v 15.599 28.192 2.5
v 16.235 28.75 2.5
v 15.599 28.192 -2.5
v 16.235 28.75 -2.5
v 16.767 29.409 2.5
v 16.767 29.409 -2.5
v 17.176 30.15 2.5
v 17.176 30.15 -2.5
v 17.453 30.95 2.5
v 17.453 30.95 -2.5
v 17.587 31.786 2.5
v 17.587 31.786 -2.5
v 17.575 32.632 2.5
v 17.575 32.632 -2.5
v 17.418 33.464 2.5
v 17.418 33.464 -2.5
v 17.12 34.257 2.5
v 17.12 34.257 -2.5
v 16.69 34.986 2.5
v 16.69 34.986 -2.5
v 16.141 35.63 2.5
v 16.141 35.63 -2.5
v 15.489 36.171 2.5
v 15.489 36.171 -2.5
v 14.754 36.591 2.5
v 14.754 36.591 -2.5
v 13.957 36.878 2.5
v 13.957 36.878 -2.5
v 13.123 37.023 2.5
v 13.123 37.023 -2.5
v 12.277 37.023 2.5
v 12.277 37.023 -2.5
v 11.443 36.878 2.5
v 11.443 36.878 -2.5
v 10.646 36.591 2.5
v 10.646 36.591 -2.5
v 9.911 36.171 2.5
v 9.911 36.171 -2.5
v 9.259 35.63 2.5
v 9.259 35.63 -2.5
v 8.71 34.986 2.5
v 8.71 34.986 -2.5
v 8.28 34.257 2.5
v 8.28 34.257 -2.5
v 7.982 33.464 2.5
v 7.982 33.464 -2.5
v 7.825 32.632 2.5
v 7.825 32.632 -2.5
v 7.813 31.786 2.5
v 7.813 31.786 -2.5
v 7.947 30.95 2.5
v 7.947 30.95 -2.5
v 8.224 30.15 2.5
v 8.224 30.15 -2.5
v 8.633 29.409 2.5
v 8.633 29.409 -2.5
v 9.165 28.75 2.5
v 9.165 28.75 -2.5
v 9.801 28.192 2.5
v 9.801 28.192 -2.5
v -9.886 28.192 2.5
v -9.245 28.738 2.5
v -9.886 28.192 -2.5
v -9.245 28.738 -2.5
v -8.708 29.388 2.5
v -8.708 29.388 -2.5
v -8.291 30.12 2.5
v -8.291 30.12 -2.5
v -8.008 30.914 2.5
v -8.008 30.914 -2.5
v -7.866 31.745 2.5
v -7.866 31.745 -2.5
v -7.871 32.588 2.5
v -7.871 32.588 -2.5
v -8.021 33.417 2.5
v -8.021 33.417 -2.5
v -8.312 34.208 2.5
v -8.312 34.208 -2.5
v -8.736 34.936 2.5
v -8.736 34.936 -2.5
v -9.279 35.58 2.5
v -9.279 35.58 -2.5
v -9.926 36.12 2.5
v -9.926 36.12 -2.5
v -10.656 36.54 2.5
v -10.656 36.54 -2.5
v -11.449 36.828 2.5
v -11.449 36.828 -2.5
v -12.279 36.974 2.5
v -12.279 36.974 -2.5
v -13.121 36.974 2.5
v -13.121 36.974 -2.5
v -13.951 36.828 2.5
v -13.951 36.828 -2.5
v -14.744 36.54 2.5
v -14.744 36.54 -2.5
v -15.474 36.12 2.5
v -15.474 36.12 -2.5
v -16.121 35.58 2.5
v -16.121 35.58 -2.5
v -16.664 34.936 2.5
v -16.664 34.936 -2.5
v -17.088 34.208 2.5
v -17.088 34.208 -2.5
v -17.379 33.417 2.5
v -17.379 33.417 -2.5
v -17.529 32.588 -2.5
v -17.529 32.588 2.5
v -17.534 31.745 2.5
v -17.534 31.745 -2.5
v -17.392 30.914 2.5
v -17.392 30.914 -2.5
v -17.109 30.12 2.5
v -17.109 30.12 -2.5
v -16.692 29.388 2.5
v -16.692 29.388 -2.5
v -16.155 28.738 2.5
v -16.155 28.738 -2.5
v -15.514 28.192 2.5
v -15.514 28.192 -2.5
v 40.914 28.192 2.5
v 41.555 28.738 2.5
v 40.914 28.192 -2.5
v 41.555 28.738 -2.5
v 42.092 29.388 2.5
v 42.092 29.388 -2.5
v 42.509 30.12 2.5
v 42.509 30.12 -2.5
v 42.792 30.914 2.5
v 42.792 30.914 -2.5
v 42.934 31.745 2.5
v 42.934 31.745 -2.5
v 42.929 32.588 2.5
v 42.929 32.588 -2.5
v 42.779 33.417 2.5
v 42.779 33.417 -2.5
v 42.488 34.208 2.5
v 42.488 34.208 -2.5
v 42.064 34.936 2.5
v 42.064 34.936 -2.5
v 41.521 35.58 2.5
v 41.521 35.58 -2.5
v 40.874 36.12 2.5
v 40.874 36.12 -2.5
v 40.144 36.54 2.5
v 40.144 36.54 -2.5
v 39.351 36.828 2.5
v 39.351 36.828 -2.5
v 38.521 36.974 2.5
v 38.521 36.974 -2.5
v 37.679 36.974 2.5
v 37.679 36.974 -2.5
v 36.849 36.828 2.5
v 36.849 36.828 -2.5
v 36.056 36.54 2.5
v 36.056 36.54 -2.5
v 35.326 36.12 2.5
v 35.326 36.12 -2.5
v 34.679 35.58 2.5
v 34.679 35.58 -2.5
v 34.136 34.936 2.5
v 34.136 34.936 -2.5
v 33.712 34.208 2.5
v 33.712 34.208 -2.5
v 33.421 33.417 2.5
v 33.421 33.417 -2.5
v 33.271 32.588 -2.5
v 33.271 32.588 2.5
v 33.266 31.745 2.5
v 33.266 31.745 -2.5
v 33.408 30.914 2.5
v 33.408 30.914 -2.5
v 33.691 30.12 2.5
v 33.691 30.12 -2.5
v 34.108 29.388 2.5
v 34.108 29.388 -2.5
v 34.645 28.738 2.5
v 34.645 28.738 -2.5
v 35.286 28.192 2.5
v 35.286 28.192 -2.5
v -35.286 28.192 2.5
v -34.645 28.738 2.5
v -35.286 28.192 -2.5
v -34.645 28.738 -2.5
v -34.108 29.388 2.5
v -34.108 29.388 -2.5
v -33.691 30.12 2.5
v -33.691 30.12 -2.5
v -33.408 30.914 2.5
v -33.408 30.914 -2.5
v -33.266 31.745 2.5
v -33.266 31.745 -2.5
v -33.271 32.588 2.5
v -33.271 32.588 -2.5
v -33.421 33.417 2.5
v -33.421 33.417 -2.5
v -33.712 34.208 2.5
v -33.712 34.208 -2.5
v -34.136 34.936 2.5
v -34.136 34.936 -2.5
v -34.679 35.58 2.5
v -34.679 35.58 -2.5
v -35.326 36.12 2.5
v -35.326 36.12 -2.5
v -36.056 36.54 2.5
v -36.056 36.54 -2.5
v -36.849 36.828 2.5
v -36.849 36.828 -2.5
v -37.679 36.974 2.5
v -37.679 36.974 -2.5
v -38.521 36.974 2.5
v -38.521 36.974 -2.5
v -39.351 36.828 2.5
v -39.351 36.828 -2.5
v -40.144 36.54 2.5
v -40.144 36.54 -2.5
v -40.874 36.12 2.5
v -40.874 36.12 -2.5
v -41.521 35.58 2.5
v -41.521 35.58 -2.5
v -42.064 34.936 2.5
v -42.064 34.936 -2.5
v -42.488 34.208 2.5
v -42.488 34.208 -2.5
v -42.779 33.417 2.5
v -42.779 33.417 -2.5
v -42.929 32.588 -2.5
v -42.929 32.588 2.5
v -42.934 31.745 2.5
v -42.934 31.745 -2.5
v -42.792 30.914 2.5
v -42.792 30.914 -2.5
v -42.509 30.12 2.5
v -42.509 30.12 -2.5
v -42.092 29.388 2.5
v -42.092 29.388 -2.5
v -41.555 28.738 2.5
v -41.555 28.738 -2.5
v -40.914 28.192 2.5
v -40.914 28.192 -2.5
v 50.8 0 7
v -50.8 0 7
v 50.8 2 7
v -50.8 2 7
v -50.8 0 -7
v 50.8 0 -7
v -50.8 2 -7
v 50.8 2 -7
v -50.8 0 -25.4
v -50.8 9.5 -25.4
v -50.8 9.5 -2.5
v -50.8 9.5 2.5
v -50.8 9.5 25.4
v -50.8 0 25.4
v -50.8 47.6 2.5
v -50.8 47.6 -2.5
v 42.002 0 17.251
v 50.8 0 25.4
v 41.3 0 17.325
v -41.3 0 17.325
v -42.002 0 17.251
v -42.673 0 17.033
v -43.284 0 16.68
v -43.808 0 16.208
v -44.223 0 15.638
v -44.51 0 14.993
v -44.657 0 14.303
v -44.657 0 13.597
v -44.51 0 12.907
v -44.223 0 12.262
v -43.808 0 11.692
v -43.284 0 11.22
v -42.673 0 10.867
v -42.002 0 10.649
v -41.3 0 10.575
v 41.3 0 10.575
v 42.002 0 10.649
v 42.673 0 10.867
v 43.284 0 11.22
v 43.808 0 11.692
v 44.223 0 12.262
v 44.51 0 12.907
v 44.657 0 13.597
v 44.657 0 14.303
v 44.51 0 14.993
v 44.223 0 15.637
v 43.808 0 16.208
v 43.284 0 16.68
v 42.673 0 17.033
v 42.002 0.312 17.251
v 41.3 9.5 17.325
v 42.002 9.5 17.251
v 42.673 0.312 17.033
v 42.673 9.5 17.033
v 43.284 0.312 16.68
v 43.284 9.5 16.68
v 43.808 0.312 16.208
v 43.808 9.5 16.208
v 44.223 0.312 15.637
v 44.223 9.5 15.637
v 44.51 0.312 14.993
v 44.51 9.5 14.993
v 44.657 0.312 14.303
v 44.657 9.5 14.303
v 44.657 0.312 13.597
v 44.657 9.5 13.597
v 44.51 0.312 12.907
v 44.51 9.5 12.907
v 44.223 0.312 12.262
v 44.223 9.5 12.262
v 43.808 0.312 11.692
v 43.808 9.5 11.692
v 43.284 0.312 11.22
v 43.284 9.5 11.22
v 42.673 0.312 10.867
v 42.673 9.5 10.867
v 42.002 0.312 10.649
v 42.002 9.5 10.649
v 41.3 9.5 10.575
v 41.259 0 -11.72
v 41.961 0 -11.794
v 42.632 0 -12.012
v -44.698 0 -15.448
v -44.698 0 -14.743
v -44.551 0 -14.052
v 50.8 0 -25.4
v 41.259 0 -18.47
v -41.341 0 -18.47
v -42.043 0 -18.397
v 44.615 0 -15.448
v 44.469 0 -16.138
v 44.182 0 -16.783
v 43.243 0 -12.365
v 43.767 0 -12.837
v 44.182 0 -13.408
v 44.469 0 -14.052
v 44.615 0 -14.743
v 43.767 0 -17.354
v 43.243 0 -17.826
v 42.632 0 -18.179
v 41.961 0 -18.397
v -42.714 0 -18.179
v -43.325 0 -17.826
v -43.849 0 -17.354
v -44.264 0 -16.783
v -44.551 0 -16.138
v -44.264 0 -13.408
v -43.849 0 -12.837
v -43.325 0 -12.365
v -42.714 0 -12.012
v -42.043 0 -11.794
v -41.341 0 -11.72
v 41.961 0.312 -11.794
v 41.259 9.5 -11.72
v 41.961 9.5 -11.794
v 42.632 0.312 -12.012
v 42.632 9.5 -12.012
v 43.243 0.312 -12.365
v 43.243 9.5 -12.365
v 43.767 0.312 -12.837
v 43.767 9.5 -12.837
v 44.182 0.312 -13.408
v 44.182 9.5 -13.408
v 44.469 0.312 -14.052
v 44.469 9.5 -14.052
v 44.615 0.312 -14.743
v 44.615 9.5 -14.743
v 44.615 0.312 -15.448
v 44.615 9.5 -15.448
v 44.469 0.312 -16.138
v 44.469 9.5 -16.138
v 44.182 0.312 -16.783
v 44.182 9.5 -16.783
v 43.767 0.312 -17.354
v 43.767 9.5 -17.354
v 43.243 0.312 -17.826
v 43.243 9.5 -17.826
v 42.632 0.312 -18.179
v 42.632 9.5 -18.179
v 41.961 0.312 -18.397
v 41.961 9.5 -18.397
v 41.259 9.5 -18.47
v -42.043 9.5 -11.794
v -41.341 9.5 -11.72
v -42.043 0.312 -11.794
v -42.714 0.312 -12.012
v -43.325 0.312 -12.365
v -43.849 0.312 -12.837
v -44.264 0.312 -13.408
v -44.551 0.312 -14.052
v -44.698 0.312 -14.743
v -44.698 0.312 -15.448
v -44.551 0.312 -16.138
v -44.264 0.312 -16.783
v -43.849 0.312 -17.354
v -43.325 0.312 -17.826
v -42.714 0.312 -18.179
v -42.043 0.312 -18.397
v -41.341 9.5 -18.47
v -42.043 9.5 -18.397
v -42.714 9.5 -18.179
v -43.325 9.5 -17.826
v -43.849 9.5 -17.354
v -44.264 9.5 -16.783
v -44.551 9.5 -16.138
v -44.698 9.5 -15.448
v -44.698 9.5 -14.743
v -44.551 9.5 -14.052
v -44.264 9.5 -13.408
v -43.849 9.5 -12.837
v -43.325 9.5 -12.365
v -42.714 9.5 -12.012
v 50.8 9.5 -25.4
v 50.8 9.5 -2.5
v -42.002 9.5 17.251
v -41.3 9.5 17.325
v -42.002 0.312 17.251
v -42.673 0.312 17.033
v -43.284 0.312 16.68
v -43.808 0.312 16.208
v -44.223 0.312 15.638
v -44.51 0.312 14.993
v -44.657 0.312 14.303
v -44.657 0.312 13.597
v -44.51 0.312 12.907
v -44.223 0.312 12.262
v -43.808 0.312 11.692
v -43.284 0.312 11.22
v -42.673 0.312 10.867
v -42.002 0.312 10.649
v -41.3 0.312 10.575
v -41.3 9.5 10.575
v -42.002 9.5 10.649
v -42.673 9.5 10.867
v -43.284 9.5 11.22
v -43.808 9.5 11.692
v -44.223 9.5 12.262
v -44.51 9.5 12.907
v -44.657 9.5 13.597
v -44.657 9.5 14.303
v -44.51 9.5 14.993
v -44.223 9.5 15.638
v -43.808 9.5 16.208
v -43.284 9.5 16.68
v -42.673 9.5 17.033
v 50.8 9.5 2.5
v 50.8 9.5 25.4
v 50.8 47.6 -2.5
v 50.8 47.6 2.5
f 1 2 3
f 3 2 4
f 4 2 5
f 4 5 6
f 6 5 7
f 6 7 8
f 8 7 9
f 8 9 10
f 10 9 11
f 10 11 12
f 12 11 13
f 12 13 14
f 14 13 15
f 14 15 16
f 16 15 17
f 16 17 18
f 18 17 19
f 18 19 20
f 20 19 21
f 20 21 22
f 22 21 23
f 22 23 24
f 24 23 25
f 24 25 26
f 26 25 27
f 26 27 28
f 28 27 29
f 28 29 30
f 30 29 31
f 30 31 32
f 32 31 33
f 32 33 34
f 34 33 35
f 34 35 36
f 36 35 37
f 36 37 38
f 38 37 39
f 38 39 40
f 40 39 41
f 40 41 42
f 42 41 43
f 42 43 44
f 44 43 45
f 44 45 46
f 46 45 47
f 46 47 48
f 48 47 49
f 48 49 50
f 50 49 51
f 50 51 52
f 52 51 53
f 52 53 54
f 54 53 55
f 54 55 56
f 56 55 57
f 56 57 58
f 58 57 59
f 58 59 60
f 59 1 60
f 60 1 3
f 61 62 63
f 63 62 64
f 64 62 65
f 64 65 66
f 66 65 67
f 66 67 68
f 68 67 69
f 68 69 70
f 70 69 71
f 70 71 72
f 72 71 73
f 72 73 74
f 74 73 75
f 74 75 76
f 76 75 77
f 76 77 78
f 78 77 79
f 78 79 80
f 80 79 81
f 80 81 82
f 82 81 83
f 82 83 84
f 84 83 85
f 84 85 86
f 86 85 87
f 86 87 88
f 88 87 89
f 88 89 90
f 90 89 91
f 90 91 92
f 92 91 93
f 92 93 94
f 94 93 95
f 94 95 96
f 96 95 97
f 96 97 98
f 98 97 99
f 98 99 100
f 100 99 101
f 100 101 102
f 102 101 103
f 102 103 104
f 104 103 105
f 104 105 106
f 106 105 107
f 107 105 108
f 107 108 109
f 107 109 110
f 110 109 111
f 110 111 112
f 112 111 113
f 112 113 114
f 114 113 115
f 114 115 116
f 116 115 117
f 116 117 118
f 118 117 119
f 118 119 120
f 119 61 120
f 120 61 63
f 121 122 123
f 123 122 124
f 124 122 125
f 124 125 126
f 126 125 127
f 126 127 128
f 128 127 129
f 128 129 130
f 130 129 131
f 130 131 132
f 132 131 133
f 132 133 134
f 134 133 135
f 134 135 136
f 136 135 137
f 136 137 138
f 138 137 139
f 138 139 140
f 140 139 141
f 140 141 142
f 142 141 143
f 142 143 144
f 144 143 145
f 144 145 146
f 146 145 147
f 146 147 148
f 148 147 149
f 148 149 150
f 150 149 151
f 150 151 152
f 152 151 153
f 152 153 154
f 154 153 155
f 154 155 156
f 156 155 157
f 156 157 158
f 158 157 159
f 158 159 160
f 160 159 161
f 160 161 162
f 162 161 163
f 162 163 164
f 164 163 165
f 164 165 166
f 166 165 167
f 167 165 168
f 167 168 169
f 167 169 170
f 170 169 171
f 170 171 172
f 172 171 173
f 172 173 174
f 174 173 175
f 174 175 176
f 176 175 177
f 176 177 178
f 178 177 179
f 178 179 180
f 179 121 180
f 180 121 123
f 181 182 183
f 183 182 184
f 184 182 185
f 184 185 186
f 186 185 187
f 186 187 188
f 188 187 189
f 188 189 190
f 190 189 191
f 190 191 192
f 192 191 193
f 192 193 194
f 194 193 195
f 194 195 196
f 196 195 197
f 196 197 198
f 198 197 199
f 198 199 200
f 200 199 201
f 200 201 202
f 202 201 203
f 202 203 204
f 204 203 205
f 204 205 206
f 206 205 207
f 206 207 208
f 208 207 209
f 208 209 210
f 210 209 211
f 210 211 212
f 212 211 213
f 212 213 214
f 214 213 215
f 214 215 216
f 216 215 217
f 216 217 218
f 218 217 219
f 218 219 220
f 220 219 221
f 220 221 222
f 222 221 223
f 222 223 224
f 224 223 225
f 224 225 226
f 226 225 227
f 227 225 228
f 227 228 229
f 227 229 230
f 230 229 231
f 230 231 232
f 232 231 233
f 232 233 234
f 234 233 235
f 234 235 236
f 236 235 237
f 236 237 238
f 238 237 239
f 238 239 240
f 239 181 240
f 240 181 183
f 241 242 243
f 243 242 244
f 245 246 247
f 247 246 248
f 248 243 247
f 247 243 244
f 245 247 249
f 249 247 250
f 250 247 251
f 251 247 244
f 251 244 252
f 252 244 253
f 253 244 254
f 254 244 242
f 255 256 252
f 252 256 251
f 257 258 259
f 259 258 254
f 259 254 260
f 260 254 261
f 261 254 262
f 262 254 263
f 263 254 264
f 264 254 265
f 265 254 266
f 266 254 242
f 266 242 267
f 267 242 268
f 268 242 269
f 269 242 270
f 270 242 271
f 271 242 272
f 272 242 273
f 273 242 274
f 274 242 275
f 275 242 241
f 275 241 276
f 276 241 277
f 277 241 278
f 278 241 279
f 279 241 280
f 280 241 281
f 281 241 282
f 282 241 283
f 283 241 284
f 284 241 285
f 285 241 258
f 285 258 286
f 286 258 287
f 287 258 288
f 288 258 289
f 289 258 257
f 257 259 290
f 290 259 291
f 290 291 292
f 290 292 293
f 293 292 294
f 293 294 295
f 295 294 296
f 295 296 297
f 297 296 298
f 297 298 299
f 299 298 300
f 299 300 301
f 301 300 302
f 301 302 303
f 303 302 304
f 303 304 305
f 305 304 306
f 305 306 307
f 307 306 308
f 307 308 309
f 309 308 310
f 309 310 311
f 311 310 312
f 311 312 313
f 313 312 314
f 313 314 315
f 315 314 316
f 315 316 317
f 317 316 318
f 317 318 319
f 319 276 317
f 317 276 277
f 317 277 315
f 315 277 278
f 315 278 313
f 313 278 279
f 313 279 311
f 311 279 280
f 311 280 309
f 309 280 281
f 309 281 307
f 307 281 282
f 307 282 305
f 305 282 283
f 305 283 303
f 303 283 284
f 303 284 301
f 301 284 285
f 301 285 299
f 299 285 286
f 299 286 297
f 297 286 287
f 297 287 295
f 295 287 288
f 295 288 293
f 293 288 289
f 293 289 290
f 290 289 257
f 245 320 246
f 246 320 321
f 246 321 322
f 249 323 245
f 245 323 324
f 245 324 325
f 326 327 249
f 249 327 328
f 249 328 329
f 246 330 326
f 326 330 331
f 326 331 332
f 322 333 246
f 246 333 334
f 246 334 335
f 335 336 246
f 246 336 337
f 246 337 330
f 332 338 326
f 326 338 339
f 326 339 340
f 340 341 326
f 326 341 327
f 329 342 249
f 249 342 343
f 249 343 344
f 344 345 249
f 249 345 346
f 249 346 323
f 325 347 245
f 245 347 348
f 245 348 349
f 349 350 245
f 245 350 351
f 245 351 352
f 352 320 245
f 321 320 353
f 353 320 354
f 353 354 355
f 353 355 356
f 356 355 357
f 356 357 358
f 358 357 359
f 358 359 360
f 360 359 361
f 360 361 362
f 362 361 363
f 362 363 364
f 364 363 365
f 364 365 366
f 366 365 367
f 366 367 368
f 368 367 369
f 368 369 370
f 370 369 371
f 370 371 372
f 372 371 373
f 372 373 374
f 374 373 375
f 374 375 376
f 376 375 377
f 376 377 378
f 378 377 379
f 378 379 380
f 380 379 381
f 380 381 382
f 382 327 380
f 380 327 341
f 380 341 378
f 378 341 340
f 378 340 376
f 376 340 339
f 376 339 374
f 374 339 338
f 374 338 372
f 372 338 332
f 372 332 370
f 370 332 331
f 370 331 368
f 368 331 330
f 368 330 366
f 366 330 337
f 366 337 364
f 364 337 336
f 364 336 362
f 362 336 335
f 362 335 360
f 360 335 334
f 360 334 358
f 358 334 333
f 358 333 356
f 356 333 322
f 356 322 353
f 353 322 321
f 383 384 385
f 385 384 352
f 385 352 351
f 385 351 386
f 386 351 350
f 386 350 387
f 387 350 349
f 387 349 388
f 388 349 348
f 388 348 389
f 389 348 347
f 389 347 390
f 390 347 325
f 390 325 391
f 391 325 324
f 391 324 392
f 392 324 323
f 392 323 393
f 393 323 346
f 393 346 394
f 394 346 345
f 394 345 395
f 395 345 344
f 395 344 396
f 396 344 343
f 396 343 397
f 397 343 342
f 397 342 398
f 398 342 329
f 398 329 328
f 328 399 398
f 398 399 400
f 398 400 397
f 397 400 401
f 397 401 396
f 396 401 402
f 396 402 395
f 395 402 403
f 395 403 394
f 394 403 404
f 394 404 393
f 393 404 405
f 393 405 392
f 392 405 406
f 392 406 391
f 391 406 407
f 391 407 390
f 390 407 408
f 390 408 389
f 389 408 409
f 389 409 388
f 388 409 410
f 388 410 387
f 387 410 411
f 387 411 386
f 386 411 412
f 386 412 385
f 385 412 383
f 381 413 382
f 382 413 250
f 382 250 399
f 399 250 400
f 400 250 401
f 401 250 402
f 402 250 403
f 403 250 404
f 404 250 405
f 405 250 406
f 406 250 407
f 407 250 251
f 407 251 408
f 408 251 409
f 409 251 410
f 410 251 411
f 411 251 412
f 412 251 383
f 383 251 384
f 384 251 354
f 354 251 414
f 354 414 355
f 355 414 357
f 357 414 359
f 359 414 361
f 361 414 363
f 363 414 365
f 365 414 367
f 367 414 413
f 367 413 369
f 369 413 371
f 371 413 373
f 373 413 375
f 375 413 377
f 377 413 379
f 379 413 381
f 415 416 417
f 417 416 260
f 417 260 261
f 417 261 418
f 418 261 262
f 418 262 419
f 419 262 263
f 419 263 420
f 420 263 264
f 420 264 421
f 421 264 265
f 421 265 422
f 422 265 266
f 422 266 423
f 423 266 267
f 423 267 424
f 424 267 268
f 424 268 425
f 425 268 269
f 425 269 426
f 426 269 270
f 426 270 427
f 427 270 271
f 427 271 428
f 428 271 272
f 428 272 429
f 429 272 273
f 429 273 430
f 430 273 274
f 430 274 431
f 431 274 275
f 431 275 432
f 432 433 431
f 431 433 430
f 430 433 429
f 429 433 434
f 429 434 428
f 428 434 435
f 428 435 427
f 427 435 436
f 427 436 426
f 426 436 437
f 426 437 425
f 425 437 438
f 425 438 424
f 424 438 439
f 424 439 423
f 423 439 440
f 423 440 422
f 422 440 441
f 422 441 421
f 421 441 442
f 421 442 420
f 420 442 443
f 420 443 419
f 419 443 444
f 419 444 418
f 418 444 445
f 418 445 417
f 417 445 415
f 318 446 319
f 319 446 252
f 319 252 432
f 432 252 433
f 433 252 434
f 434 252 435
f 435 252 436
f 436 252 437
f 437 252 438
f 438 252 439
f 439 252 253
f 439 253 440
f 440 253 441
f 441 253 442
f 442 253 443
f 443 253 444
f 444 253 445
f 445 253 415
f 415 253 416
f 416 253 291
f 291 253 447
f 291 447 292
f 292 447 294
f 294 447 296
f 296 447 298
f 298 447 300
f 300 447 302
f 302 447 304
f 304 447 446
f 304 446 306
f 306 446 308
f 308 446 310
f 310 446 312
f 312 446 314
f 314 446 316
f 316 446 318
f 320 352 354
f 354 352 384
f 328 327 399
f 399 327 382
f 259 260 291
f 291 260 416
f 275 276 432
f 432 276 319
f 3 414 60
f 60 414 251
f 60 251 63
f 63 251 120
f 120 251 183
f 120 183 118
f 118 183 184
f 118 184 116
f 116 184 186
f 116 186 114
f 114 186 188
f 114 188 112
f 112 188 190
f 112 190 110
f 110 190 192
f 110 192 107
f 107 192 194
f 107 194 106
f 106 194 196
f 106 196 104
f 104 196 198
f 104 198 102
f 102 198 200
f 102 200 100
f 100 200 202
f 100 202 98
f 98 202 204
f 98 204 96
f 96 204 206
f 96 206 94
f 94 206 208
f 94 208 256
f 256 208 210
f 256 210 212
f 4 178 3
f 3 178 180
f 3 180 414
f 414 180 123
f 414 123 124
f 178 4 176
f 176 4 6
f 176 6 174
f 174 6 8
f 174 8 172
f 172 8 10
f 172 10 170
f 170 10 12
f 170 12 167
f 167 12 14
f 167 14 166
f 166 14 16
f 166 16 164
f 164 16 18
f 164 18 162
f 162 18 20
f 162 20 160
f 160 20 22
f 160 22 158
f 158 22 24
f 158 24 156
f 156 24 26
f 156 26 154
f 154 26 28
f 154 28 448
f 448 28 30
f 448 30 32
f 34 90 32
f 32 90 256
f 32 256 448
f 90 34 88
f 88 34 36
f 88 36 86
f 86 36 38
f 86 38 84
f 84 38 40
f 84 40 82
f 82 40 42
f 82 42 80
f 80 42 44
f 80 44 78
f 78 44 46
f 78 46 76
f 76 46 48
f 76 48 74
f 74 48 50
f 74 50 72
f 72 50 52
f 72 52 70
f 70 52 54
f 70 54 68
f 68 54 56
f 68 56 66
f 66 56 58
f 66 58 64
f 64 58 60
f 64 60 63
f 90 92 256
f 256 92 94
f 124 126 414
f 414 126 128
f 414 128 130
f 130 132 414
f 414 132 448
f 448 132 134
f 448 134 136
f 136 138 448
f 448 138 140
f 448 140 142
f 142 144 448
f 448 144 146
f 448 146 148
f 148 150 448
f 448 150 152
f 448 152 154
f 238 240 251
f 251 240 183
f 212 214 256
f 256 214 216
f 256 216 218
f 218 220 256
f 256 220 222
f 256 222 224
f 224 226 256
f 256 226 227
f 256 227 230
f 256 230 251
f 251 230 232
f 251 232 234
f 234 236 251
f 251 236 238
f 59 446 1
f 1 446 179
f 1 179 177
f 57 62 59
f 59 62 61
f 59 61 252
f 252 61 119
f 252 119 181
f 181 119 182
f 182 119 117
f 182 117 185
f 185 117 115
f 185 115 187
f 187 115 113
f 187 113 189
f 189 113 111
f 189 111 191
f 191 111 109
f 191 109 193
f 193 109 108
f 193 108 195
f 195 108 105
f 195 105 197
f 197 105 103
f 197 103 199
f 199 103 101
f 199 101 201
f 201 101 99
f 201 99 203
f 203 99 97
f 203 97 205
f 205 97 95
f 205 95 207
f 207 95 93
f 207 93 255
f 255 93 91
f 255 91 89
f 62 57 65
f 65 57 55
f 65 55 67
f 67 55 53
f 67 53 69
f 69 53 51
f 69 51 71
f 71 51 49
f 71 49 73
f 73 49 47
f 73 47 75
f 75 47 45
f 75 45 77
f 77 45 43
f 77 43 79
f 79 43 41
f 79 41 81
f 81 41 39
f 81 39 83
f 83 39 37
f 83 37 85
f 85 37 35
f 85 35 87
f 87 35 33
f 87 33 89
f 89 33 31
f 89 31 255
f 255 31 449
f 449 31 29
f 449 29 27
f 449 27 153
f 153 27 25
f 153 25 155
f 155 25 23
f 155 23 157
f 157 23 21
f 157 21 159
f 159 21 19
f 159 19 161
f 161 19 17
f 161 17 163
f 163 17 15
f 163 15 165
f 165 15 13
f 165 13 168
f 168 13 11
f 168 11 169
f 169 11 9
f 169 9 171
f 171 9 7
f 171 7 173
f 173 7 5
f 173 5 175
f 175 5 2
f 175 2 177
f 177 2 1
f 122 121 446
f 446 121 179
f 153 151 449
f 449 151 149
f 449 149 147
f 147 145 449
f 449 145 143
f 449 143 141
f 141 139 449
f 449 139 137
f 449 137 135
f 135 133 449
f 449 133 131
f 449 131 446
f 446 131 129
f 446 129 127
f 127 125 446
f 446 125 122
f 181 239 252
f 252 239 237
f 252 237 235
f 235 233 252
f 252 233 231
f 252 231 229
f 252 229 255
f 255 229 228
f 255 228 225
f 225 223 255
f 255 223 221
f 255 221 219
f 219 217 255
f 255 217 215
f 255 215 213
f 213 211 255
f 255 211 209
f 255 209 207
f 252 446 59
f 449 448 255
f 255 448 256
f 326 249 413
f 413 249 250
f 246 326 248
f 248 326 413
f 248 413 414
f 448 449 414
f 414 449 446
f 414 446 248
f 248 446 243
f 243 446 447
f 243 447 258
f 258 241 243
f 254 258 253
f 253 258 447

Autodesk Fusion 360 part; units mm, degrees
sketch "Sketch1" plane through (0, 0, 0) normal (0, 1, 0) x (1, 0, 0)
  line L0 (-50.8, 25.4) -> (50.8, 25.4)
  line L1 (50.8, 25.4) -> (50.8, -25.4)
  line L2 (50.8, -25.4) -> (-50.8, -25.4)
  line L3 (-50.8, -25.4) -> (-50.8, 25.4)
  line L4 (-50.8, -25.4) -> (50.8, 25.4)
  line L5 (-50.8, 25.4) -> (50.8, -25.4)
  dimension "d1" = 50.8
  dimension "d2" = 101.6
extrude "Extrude1" add sketch "Sketch1" along normal blind 9.5
sketch "Sketch2" plane through (0, 9.5, 0) normal (0, 1, 0) x (-1, 0, 0)
  line L0 (50.8, 25.4) -> (-50.8, 25.4)
  line L1 (-50.8, 25.4) -> (-50.8, -25.4)
  line L2 (-50.8, -25.4) -> (50.8, -25.4)
  line L3 (50.8, -25.4) -> (50.8, 25.4)
  line L4 (50.8, -2.5) -> (-50.8, -2.5)
  line L5 (-50.8, -2.5) -> (-50.8, 2.5)
  line L6 (-50.8, 2.5) -> (50.8, 2.5)
  line L7 (50.8, 2.5) -> (50.8, -2.5)
  line L8 (50.8, 2.5) -> (-50.8, -2.5)
  dimension "d5" = 5
extrude "Extrude2" add sketch "Sketch2" along normal blind 38.1 contours L1 L5 L6 L8 | L3 L4 L7 L8
sketch "Sketch3" plane through (0, 9.5, 0) normal (0, 1, 0) x (-1, 0, 0)
  line L0 (-50.8, 2.5) -> (50.8, 2.5)
  line L1 (50.8, 2.5) -> (50.8, 25.4)
  line L2 (50.8, 25.4) -> (-50.8, 25.4)
  line L3 (-50.8, 25.4) -> (-50.8, 2.5)
  line L4 (41.3, 10.575) -> (-41.3, 10.575)
  line L5 (-41.3, 10.575) -> (-41.3, 17.325)
  line L6 (-41.3, 17.325) -> (41.3, 17.325)
  line L7 (41.3, 17.325) -> (41.3, 10.575)
  line L8 (0, 2.5) -> (0, 10.575)
  line L9 (0, 17.325) -> (0, 25.4)
  line L10 (41.3, 13.95) -> (50.8, 13.95)
  line L11 (-41.3, 13.95) -> (-50.8, 13.95)
  line L12 (41.341, -18.4703) -> (-41.259, -18.4703)
  line L13 (-41.259, -18.4703) -> (-41.259, -11.7203)
  line L14 (-41.259, -11.7203) -> (41.341, -11.7203)
  line L15 (41.341, -11.7203) -> (41.341, -18.4703)
  line L16 (0.041, -26.5453) -> (0.041, -18.4703)
  dimension "d8" = 82.6
  dimension "d9" = 6.75
extrude "Extrude3" cut sketch "Sketch3" against normal blind 20 contours L4 L5 L6 L7 | L12 L13 L14 L15
hole "Hole1" at (-41.3, 9.5, 13.95) direction (0, -1, 0) diameter 6.75 depth 30 tip angle 118
hole "Hole2" at (-41.341, 9.5, -15.0953) direction (0, -1, 0) diameter 6.75 depth 30 tip angle 118
hole "Hole3" at (41.259, 9.5, -15.0953) direction (0, -1, 0) diameter 6.75 depth 30 tip angle 118
hole "Hole4" at (41.3, 9.5, 13.95) direction (0, -1, 0) diameter 6.75 depth 30 tip angle 118
sketch "Sketch4" plane through (0, 0, 0) normal (0, -1, 0) x (1, 0, 0)
  arc A0 (41.259, -18.4703) -> (41.259, -11.7203) centre (41.259, -15.0953) ccw
  line L0 (41.259, -18.4703) -> (-41.341, -18.4703)
  arc A1 (-41.341, -11.7203) -> (-41.341, -18.4703) centre (-41.341, -15.0953) ccw
  line L1 (-41.341, -11.7203) -> (41.259, -11.7203)
  arc A2 (41.3, 10.575) -> (41.3, 17.325) centre (41.3, 13.95) ccw
  line L2 (41.3, 10.575) -> (-41.3, 10.575)
  arc A3 (-41.3, 17.325) -> (-41.3, 10.575) centre (-41.3, 13.95) ccw
  line L3 (-41.3, 17.325) -> (41.3, 17.325)
  line L4 (50.8, 25.4) -> (-50.8, 25.4)
  line L5 (-50.8, 25.4) -> (-50.8, -25.4)
  line L6 (-50.8, -25.4) -> (50.8, -25.4)
  line L7 (50.8, -25.4) -> (50.8, 25.4)
  line L8 (-50.8, 7) -> (50.8, 7)
  line L9 (50.8, 7) -> (50.8, -7)
  line L10 (50.8, -7) -> (-50.8, -7)
  line L11 (-50.8, -7) -> (-50.8, 7)
  line L12 (-50.8, 0) -> (50.8, 0)
  line L13 (0, 7) -> (0, -7)
  dimension "d25" = 101.6
  dimension "d26" = 14
extrude "Extrude4" cut sketch "Sketch4" against normal blind 2 contours L7 L8 L9 L12 L13 | L5 L8 L11 L12 L13 | L7 L9 L10 L12 L13 | L5 L10 L11 L12 L13
sketch "Sketch5" plane through (0, 0, -2.5) normal (0, 0, -1) x (-1, 0, 0)
  line L0 (-50.8, 9.5) -> (50.8, 9.5)
  line L1 (50.8, 9.5) -> (50.8, 47.6)
  line L2 (50.8, 47.6) -> (-50.8, 47.6)
  line L3 (-50.8, 47.6) -> (-50.8, 9.5)
  circle A0 centre (-38.1, 32.142) radius 4.85
  circle A1 centre (-12.7, 32.142) radius 4.8997
  circle A2 centre (12.7, 32.142) radius 4.85
  circle A3 centre (38.1, 32.142) radius 4.85
  line L4 (-38.1, 32.142) -> (-12.7, 32.142)
  line L5 (-12.7, 32.142) -> (12.7, 32.142)
  line L6 (12.7, 32.142) -> (38.1, 32.142)
  line L7 (-42.95, 37.0417) -> (42.95, 37.0417)
  line L8 (42.95, 37.0417) -> (42.95, 28.1917)
  line L9 (42.95, 28.1917) -> (-42.95, 28.1917)
  line L10 (-42.95, 28.1917) -> (-42.95, 37.0417)
  line L11 (42.95, 32.6167) -> (50.8, 32.6167)
  line L12 (-42.95, 32.6167) -> (-50.8, 32.6167)
  dimension "d29" = 9.7
  dimension "d31" = 8.85
  dimension "d32" = 25.4
extrude "Extrude5" cut sketch "Sketch5" against normal blind 20 contours A0 L9 | A3 L9 | A1 L4 L5 | A1 L4 L5 L9 | A2 L5 L6 | A2 L5 L6 L9 picked at (-39.4169, 32.3517) picked at (37.6141, 31.8651)
equation "d8 = 101.6 mm - 19 mm"
